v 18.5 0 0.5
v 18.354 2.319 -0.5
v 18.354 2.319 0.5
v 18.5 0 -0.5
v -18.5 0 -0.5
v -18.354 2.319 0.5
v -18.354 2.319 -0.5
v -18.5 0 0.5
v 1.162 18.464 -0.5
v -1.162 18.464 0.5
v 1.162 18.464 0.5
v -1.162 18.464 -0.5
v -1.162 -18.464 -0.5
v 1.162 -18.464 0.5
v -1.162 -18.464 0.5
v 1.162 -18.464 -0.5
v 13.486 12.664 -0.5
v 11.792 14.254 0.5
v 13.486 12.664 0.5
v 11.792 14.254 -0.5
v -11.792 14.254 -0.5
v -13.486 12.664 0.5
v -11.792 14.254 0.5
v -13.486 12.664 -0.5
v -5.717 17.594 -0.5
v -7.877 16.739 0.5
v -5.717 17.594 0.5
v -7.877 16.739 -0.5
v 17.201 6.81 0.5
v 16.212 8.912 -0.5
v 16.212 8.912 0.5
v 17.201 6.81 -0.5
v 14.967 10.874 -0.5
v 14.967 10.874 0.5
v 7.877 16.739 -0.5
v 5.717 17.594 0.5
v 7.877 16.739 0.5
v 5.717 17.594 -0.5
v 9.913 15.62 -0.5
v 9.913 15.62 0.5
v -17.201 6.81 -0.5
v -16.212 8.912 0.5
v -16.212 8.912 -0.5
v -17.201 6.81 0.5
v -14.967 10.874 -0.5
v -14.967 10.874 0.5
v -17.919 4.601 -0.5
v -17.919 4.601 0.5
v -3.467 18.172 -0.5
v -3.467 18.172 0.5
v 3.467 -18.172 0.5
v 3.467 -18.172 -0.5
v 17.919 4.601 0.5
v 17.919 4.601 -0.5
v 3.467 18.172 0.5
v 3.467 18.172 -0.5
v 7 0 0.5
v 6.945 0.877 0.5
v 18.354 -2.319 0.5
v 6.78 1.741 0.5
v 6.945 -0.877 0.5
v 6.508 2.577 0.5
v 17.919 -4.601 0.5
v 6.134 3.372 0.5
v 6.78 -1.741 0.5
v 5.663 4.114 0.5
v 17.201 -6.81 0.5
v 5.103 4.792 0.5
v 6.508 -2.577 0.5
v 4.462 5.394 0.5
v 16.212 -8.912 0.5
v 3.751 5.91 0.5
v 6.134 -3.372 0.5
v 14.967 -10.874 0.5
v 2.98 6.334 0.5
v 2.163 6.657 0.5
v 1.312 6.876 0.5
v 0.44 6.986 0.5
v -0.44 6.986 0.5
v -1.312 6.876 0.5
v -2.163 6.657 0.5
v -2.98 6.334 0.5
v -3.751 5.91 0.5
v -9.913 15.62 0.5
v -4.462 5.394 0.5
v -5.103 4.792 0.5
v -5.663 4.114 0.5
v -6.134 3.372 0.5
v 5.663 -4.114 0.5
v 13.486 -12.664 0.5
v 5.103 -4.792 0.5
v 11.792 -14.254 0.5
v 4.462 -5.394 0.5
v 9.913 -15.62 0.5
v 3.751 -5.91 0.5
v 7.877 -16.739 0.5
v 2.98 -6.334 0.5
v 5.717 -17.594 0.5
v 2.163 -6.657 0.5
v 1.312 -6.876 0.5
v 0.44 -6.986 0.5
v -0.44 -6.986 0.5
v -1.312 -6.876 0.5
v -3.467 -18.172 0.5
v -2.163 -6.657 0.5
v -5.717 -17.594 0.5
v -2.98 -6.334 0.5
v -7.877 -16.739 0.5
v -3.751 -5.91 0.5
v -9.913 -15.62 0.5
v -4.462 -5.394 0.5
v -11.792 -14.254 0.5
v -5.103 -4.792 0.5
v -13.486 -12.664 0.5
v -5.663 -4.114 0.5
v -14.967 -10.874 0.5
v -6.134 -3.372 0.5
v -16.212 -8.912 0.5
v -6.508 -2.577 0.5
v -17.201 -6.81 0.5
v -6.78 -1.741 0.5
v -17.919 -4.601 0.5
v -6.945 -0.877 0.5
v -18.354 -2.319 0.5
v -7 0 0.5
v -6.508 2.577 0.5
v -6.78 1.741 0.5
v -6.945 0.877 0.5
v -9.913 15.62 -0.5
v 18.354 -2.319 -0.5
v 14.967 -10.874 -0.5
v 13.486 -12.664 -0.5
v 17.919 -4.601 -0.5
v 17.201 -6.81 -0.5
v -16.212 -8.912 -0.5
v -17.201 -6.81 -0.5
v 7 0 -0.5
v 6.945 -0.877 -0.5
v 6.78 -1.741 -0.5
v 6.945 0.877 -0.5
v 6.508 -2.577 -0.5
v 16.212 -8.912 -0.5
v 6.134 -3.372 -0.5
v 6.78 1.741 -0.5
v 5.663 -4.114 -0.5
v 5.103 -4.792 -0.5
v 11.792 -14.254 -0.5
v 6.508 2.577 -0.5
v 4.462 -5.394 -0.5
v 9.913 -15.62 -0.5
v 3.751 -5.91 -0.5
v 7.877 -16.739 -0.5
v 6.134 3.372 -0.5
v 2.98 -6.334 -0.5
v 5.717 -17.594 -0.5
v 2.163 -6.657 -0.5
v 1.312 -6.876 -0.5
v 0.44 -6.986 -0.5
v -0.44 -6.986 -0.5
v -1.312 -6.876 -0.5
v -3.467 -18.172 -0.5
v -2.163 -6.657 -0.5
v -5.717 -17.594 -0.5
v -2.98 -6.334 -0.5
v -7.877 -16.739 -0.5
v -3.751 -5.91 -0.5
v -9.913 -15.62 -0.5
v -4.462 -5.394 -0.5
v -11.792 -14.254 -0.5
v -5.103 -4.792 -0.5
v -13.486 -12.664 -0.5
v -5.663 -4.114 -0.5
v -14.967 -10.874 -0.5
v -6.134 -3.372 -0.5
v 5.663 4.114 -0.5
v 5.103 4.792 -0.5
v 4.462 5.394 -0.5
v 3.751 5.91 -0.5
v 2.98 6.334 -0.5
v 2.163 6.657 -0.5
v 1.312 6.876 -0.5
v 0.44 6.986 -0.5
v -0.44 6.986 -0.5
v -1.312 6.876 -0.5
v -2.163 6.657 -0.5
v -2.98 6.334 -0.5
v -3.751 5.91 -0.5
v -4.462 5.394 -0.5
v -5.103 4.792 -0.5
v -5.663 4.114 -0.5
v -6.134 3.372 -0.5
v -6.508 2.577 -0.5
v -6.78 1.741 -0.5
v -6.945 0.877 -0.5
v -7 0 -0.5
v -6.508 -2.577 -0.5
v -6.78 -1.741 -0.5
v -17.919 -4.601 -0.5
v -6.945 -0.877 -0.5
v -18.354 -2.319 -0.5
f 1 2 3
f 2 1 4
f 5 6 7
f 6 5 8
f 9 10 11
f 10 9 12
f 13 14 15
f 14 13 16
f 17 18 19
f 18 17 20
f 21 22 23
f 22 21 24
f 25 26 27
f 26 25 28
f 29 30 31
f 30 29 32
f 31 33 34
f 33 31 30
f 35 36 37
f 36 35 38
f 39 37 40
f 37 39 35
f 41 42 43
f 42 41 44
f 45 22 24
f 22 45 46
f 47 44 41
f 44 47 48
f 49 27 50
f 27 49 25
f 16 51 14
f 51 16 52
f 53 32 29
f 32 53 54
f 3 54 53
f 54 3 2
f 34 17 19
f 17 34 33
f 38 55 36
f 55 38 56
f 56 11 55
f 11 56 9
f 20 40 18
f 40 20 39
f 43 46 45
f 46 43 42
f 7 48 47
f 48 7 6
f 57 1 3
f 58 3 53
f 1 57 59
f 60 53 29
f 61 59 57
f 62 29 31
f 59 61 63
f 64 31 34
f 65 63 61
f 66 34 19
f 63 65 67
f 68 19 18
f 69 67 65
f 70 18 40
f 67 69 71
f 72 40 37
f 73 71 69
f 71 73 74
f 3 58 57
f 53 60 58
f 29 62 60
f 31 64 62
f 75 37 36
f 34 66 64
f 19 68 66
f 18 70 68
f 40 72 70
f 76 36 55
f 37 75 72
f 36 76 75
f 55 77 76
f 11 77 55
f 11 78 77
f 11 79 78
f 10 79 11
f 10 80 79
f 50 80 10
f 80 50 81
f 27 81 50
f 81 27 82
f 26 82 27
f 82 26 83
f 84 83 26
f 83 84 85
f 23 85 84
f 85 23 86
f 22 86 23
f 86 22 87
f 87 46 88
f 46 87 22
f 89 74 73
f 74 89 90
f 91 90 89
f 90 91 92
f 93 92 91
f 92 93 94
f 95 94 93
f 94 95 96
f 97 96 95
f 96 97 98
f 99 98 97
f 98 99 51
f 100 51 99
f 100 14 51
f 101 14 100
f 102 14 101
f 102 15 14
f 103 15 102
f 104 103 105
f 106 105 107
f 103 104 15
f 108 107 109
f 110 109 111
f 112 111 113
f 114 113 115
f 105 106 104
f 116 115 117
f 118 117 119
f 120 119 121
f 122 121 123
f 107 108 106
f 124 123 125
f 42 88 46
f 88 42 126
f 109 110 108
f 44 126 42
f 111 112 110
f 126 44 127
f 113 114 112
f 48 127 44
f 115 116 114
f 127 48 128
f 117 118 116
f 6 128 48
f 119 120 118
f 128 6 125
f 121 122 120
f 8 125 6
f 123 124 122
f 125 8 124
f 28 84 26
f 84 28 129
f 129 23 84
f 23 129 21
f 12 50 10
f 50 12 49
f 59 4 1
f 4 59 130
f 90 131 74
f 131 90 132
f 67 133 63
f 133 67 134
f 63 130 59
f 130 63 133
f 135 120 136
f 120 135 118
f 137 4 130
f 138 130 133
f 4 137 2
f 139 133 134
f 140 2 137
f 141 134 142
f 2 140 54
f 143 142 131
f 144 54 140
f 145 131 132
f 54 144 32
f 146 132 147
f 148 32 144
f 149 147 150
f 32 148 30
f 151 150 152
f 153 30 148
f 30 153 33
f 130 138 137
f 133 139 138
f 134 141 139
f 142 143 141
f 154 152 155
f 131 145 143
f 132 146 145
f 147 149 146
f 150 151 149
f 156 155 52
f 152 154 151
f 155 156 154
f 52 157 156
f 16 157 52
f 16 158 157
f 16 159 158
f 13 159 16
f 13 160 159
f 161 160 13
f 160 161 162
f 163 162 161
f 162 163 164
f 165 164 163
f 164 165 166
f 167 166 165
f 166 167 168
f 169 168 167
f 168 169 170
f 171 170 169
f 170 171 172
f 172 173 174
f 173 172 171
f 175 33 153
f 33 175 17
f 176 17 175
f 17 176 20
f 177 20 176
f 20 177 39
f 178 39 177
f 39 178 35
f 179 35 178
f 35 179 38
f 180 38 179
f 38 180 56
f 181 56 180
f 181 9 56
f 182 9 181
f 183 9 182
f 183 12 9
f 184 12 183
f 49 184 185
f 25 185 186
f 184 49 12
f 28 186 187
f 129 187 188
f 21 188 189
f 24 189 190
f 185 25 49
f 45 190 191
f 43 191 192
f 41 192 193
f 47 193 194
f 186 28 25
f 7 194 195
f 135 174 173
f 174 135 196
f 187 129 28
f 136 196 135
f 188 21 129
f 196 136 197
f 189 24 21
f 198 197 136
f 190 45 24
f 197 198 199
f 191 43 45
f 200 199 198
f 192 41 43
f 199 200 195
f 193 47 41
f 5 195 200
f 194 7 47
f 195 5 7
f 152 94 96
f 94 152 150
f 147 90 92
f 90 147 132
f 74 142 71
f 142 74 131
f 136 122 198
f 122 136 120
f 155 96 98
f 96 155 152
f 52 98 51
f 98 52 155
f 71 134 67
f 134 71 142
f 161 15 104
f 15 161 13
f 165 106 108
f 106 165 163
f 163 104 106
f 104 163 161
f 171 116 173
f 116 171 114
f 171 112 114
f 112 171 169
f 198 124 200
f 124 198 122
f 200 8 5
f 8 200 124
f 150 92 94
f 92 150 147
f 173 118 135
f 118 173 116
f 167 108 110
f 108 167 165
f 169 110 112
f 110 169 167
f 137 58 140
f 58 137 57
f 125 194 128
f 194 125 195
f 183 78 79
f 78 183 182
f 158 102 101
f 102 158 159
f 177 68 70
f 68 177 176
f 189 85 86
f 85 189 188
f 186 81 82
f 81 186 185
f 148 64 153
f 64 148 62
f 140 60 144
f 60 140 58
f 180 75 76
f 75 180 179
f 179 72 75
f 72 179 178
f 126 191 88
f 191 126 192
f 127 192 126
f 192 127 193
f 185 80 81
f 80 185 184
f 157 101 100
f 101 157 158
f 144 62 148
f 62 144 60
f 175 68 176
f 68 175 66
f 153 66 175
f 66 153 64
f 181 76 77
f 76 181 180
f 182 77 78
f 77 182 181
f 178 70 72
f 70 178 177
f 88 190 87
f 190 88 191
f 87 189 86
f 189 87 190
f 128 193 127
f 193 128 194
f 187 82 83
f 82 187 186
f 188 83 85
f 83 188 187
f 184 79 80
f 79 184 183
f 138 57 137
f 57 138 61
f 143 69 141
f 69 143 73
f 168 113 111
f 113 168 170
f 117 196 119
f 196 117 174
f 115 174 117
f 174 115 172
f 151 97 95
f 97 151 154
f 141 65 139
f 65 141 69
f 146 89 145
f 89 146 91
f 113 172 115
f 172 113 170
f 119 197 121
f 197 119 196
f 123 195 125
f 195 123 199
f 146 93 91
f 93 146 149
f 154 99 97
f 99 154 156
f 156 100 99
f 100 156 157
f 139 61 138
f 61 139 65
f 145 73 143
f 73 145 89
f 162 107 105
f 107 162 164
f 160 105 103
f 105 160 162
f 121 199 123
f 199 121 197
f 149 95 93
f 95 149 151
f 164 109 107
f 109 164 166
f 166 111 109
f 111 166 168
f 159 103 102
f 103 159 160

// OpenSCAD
$fn = 50;


difference() {
	union() {
		translate(v = [0, 0, -0.5000000000]) {
			cylinder(h = 1, r = 18.5000000000);
		}
	}
	union() {
		translate(v = [0, 0, -100.0000000000]) {
			cylinder(h = 200, r = 7);
		}
	}
}
